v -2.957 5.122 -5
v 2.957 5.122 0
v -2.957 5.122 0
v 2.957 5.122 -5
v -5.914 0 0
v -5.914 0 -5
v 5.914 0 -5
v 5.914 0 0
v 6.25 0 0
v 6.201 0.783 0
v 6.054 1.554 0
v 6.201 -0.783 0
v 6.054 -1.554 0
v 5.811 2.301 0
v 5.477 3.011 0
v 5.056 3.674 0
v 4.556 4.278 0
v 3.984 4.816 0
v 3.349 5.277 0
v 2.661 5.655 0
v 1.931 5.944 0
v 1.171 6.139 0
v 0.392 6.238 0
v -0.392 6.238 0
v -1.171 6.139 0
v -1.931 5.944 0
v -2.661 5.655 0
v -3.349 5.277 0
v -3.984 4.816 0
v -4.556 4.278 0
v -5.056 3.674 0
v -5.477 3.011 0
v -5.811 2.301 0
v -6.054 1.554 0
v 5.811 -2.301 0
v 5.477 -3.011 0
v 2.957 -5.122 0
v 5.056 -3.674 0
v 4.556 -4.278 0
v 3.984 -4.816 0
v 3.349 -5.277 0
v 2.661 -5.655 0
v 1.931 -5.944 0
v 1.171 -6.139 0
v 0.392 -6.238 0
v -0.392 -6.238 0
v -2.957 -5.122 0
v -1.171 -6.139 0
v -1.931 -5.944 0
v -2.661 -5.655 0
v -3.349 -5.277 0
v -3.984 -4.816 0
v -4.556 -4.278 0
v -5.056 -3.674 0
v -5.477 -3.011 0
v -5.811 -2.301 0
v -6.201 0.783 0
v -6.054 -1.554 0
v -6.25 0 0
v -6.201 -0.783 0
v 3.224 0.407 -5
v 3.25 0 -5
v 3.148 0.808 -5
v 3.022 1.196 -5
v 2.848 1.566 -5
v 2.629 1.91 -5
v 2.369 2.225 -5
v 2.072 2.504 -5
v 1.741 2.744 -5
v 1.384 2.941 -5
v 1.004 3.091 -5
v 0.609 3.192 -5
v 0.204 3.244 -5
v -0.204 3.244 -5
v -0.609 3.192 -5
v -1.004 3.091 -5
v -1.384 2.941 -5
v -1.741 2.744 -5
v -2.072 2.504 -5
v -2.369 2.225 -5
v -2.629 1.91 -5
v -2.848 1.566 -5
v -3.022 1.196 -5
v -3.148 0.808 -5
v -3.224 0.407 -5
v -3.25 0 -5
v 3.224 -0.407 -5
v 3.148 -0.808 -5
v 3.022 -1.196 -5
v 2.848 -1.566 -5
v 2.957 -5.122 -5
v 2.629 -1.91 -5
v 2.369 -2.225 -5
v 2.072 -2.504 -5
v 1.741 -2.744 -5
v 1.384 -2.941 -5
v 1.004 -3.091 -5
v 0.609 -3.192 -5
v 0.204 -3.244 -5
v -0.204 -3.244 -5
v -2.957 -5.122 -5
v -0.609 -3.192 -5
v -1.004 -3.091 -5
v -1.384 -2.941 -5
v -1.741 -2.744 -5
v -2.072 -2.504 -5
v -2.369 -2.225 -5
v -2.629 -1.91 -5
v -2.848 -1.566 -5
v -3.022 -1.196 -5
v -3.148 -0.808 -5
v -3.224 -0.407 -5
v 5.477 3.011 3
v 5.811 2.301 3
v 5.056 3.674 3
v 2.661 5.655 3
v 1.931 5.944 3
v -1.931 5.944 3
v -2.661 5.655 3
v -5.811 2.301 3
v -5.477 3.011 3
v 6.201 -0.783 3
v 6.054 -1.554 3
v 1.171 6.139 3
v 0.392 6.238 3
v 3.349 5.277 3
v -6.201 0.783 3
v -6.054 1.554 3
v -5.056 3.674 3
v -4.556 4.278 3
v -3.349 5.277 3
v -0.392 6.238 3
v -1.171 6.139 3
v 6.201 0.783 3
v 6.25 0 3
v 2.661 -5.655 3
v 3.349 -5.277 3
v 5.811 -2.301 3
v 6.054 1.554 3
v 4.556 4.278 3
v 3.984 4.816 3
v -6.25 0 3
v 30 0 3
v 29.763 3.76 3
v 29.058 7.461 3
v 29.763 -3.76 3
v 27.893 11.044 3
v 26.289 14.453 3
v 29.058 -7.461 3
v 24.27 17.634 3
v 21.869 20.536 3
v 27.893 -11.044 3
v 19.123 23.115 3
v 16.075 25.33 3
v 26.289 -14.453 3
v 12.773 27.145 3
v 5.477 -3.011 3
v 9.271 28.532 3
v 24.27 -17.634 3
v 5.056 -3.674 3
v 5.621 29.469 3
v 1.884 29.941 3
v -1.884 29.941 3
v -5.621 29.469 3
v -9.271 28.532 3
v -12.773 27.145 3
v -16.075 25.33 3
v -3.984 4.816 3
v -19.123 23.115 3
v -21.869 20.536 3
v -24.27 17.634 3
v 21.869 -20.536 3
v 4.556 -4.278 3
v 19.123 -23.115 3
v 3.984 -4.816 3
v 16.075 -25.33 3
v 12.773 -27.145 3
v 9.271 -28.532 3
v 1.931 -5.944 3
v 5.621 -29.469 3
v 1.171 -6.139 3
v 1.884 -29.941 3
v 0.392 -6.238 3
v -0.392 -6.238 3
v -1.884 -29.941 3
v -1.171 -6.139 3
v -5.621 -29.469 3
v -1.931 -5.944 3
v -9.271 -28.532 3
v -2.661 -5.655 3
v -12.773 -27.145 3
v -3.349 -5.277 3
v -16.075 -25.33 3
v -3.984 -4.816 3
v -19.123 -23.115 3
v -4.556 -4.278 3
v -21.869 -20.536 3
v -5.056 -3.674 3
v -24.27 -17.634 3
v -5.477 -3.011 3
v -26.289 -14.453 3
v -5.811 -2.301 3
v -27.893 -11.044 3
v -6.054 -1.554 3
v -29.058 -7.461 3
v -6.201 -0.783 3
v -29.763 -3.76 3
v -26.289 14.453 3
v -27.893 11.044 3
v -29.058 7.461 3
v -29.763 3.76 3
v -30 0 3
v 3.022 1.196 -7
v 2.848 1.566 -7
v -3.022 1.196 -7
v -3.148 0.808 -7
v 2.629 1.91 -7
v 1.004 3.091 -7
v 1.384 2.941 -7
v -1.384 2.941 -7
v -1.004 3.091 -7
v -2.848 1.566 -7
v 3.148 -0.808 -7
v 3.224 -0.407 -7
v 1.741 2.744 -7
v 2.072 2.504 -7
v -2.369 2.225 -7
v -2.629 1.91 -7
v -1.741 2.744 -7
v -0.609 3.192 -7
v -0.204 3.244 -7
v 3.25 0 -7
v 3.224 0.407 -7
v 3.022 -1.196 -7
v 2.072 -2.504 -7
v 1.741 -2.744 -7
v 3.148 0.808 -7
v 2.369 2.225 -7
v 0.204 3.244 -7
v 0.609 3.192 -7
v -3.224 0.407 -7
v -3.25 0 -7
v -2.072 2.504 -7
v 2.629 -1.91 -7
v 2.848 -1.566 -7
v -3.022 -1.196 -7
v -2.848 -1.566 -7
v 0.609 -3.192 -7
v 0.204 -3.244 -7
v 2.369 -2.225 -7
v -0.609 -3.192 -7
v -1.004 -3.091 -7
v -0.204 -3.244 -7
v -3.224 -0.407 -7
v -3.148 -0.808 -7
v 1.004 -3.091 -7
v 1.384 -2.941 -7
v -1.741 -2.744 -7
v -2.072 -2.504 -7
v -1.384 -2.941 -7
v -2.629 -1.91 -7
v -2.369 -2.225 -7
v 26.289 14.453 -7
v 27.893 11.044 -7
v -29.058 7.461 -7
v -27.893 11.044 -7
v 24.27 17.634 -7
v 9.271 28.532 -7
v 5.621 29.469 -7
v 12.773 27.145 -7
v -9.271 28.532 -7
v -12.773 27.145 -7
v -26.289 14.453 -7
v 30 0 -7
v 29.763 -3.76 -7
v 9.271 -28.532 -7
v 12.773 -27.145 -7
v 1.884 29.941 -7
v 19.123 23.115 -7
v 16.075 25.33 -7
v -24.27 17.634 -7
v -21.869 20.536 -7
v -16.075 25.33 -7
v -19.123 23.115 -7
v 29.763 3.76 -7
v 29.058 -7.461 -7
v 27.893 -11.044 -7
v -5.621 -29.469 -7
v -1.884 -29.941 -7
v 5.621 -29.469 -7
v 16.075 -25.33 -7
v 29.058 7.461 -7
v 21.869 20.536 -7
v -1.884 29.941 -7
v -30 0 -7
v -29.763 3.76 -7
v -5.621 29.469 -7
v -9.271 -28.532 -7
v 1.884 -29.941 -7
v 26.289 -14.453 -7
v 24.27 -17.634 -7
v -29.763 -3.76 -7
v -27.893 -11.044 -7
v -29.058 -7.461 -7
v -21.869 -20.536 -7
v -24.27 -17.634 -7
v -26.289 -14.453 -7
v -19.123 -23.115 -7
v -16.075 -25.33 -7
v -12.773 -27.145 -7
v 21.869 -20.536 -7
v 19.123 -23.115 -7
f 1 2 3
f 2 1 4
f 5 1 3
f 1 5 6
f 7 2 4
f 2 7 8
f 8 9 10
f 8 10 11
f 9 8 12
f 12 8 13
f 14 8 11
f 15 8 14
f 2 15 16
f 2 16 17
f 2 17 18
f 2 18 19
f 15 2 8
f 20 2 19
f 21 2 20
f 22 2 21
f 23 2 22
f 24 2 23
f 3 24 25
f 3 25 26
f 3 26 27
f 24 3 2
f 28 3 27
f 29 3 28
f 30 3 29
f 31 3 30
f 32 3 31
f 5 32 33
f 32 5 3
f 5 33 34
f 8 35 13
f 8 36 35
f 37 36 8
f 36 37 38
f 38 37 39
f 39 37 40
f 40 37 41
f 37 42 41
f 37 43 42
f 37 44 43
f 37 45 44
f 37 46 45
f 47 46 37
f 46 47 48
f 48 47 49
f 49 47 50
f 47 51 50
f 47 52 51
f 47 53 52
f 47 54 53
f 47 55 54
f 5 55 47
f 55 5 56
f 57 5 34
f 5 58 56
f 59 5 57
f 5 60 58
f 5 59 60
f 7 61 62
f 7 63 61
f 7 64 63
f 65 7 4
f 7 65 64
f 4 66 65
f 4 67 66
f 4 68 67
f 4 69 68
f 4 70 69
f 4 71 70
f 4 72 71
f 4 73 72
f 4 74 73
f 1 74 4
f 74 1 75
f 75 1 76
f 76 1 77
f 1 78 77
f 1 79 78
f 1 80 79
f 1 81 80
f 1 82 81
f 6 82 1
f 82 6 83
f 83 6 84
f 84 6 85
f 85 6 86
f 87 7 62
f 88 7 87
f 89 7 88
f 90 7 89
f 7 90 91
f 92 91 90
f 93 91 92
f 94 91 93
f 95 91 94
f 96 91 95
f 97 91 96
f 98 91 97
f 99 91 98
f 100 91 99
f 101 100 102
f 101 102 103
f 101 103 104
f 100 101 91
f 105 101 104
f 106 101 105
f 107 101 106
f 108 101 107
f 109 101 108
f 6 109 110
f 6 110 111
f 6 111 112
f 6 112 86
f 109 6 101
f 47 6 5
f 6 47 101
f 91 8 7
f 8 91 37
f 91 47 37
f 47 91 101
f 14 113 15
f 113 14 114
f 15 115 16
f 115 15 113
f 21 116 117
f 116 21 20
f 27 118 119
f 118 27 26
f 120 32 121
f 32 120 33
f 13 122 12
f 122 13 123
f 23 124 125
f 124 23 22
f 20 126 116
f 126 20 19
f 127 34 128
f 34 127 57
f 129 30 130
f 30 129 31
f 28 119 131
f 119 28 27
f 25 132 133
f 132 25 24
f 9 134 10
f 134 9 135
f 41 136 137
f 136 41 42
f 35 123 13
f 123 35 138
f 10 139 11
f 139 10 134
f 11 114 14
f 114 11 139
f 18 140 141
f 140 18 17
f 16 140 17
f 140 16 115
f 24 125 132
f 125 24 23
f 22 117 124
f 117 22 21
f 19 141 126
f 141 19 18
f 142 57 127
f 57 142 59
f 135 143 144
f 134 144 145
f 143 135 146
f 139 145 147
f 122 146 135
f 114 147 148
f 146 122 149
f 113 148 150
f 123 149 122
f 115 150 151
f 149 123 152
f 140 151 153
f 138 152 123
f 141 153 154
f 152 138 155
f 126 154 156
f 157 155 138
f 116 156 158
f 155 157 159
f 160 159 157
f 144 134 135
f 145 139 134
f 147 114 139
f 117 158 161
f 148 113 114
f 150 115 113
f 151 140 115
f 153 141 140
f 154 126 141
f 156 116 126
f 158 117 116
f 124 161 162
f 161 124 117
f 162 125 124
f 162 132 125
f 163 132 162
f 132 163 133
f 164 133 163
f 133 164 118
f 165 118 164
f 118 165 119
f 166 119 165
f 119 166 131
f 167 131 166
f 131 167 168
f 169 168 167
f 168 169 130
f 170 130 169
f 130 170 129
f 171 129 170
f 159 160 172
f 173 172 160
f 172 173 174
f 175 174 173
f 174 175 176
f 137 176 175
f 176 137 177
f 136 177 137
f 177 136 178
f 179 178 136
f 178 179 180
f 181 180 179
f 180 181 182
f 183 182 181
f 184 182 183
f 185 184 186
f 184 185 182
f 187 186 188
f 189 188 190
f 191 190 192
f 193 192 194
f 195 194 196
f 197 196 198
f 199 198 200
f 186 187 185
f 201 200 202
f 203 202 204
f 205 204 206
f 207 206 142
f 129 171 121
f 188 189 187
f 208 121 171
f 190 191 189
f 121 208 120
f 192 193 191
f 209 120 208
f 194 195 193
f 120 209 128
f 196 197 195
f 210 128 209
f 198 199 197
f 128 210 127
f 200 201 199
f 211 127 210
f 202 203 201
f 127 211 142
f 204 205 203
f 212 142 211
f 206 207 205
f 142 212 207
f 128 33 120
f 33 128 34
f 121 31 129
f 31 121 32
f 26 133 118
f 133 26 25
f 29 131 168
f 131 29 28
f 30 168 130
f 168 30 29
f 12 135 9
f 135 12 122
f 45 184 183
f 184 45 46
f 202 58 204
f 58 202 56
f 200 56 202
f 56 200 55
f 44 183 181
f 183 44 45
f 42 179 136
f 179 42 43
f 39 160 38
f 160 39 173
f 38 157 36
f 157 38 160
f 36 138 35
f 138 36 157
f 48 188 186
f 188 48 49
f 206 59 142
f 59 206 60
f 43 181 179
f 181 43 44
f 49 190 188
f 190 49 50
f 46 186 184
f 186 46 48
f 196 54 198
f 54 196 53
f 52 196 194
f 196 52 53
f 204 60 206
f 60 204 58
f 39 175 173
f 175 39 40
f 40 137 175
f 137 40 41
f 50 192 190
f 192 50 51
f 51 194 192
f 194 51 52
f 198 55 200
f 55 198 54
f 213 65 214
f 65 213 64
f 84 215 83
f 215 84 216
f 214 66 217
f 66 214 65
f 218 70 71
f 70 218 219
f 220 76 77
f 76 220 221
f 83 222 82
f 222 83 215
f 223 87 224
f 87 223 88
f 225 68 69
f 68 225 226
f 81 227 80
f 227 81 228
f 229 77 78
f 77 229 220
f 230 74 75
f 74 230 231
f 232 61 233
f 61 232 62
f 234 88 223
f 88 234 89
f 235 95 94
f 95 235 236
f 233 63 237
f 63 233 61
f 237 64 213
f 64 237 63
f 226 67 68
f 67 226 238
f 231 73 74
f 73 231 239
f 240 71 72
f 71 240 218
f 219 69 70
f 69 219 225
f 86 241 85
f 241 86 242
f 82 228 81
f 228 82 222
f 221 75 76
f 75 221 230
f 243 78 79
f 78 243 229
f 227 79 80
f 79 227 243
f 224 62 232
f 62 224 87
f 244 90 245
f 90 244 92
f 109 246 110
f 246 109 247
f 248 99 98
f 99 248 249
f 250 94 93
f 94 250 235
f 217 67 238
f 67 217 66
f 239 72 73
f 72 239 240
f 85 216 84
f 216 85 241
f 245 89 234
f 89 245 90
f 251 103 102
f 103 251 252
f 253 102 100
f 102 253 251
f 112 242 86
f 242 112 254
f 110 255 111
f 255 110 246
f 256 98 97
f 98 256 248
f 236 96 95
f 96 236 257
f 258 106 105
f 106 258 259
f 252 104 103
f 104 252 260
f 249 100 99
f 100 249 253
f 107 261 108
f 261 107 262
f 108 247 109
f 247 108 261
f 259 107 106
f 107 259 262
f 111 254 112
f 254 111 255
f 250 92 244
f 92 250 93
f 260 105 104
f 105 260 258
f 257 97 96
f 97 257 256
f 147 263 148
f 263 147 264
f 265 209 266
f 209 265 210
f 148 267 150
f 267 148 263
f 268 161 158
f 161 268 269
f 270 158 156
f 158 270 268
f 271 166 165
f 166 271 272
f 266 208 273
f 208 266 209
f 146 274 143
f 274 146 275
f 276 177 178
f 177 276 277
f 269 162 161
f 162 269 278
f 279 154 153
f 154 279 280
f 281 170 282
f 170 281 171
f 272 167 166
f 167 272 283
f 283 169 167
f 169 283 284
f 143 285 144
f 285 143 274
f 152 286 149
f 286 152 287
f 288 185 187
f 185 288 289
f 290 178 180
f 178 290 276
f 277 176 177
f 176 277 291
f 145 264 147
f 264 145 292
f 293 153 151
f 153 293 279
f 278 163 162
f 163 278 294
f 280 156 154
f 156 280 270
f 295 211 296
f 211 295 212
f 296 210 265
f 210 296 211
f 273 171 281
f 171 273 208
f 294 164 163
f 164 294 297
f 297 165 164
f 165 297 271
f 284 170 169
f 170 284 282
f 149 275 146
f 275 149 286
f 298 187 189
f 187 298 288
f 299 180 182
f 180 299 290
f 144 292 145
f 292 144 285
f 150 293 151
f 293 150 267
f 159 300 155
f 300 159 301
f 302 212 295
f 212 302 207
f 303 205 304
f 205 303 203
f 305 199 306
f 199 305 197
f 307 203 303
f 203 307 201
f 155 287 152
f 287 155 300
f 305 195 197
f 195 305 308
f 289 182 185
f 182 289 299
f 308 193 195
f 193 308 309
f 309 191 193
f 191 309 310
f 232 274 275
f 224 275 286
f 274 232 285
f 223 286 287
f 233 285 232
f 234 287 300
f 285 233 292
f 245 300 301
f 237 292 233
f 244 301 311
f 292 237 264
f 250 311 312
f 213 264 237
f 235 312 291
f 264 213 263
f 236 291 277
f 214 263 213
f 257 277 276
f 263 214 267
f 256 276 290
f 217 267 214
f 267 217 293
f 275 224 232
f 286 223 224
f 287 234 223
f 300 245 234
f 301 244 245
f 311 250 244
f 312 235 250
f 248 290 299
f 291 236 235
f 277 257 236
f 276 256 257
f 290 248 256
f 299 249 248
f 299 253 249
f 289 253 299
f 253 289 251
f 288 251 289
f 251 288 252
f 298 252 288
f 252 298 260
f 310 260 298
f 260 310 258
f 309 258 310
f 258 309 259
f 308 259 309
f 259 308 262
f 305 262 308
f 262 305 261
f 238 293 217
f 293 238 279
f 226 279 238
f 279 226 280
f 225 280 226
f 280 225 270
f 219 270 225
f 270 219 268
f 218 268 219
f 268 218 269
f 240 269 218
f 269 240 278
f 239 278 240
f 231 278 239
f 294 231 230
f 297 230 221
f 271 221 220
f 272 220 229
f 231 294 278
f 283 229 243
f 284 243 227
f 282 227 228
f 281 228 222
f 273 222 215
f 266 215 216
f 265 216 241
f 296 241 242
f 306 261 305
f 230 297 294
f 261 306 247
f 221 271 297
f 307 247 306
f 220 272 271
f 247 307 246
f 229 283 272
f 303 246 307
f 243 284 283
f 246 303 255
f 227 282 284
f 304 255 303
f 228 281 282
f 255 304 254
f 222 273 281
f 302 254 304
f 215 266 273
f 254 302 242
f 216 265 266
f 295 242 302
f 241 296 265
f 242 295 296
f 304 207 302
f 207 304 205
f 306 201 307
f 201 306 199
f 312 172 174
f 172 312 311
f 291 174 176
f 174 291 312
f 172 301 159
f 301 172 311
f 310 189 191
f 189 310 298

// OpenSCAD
$fn = 50;

difference() {
	union() {
		translate(v = [0, 0, -7.0]) {
			cylinder(h = 10.0, r = 30.0);
		}
	}
	union() {
		translate(v = [0, 0, 0]) {
			rotate(a = [0, 0, 0]) {
				difference() {
					union() {
						translate(v = [0, 0, -5]) {
							linear_extrude(height = 5) {
								polygon(points = [[5.914249999999999, 0.0], [2.957125, 5.1218907443321156], [-2.9571249999999982, 5.1218907443321156], [-5.914249999999999, 7.242867331857232e-16], [-2.9571250000000022, -5.121890744332115], [2.9571249999999956, -5.121890744332118]]);
							}
						}
					}
					union();
				}
			}
		}
		#cylinder(h = 3, r = 6.25);
		#translate(v = [0, 0, -100.0]) {
			cylinder(h = 200, r = 3.25);
		}
	}
}
